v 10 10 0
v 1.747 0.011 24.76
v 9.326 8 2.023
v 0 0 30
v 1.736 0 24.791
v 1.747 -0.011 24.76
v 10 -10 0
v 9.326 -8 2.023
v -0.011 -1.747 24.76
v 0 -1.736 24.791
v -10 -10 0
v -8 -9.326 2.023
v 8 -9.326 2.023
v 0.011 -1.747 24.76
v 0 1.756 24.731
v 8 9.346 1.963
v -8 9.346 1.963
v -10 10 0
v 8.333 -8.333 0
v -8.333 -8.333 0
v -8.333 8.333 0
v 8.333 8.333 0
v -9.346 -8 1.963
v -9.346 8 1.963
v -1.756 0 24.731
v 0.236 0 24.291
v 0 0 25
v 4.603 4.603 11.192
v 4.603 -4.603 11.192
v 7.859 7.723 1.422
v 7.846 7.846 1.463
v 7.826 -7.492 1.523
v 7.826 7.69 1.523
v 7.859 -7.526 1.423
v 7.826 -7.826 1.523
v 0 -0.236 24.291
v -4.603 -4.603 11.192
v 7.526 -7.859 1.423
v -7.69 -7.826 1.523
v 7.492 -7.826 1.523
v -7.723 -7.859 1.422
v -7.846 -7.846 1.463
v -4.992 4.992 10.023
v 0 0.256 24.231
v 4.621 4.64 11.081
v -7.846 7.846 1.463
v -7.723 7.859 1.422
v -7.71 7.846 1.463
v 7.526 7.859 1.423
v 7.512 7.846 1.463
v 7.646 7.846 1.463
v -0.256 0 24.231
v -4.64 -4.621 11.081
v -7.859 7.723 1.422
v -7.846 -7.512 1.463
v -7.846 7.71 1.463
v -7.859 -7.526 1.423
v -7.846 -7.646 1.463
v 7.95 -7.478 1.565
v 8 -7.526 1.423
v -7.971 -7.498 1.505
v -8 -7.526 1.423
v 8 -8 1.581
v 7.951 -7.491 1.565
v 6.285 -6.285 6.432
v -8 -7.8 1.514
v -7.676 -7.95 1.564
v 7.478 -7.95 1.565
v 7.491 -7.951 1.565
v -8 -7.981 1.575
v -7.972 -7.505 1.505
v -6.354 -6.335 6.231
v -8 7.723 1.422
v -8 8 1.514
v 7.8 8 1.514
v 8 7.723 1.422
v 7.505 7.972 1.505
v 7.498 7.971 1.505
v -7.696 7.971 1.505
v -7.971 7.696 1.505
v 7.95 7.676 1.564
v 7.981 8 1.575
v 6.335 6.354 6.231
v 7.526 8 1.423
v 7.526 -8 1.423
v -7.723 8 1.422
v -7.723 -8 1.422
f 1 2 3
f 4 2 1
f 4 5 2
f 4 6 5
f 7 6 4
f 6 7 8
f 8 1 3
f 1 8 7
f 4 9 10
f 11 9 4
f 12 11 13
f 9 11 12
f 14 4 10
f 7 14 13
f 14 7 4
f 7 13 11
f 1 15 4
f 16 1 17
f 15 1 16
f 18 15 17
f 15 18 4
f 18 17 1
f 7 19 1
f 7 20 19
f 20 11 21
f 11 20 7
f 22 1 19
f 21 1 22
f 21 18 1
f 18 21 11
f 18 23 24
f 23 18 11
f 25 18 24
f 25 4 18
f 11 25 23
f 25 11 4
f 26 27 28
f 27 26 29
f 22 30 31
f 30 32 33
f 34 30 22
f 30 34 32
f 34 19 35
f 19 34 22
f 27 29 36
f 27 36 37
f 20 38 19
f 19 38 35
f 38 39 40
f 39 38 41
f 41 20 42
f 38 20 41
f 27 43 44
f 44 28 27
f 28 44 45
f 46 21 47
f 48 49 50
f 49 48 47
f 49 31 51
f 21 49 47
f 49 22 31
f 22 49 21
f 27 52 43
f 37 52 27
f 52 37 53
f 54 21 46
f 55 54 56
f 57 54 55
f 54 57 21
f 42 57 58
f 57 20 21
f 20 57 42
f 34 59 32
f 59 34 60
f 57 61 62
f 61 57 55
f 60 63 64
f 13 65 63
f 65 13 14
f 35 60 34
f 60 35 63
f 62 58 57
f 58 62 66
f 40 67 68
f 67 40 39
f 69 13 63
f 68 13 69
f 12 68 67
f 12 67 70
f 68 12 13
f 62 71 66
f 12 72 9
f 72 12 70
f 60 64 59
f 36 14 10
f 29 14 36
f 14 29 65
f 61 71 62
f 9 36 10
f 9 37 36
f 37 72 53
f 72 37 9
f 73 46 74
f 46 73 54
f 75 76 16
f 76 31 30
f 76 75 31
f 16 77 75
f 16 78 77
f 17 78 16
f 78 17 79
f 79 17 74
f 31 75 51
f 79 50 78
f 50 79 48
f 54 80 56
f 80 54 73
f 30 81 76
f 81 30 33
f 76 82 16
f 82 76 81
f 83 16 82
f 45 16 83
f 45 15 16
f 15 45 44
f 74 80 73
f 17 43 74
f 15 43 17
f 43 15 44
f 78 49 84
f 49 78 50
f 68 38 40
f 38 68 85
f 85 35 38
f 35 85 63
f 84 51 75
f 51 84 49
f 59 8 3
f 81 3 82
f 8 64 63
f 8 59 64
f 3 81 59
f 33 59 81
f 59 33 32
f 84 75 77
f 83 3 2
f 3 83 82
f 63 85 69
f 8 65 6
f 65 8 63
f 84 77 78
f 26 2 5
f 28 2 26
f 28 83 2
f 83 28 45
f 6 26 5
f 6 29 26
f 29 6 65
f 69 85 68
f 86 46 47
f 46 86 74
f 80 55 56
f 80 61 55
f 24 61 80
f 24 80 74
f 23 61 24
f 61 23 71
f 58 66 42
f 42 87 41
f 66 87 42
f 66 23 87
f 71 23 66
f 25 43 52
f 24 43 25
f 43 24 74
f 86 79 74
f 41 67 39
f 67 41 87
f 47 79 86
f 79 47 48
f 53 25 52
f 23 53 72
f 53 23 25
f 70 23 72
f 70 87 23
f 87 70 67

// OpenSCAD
module b_tri () {
    linear_extrude(1.9) {
        difference () {
            //polygon([[10,0],[-10,0],[0,30]]);
            translate ([0,1.5,0]) scale ([0.8,0.8,0.8]) polygon([[10,0],[-10,0],[0,30]]);
        }
    }
}


difference(){
    polyhedron(
        points=[ [10,10,0],[10,-10,0],[-10,-10,0],[-10,10,0], // четыре точки , основания пирамиды
                 [0,0,30]  ],                                 // точка вершины
        faces=[ [0,1,4],[1,2,4],[2,3,4],[3,0,4],              // формирование боковых плоскостей 
                    [1,0,3],[2,1,3] ]                         // формирование плоскости основания
    );
    translate([0,0,-5]) polyhedron(
        points=[ [10,10,0],[10,-10,0],[-10,-10,0],[-10,10,0], // четыре точки , основания пирамиды
                 [0,0,30]  ],                                 // точка вершины
        faces=[ [0,1,4],[1,2,4],[2,3,4],[3,0,4],              // формирование боковых плоскостей 
                    [1,0,3],[2,1,3] ]                         // формирование плоскости основания
    );
    translate([0,-8,0]) rotate([71.565,0,0]) b_tri();
    translate([0,10,0.6]) rotate([108.435,0,0]) b_tri();
    translate([8,0,0]) rotate([71.565,0,90]) b_tri();
    translate([-10,0,0.6]) rotate([108.435,0,90]) b_tri(); 
     
}
